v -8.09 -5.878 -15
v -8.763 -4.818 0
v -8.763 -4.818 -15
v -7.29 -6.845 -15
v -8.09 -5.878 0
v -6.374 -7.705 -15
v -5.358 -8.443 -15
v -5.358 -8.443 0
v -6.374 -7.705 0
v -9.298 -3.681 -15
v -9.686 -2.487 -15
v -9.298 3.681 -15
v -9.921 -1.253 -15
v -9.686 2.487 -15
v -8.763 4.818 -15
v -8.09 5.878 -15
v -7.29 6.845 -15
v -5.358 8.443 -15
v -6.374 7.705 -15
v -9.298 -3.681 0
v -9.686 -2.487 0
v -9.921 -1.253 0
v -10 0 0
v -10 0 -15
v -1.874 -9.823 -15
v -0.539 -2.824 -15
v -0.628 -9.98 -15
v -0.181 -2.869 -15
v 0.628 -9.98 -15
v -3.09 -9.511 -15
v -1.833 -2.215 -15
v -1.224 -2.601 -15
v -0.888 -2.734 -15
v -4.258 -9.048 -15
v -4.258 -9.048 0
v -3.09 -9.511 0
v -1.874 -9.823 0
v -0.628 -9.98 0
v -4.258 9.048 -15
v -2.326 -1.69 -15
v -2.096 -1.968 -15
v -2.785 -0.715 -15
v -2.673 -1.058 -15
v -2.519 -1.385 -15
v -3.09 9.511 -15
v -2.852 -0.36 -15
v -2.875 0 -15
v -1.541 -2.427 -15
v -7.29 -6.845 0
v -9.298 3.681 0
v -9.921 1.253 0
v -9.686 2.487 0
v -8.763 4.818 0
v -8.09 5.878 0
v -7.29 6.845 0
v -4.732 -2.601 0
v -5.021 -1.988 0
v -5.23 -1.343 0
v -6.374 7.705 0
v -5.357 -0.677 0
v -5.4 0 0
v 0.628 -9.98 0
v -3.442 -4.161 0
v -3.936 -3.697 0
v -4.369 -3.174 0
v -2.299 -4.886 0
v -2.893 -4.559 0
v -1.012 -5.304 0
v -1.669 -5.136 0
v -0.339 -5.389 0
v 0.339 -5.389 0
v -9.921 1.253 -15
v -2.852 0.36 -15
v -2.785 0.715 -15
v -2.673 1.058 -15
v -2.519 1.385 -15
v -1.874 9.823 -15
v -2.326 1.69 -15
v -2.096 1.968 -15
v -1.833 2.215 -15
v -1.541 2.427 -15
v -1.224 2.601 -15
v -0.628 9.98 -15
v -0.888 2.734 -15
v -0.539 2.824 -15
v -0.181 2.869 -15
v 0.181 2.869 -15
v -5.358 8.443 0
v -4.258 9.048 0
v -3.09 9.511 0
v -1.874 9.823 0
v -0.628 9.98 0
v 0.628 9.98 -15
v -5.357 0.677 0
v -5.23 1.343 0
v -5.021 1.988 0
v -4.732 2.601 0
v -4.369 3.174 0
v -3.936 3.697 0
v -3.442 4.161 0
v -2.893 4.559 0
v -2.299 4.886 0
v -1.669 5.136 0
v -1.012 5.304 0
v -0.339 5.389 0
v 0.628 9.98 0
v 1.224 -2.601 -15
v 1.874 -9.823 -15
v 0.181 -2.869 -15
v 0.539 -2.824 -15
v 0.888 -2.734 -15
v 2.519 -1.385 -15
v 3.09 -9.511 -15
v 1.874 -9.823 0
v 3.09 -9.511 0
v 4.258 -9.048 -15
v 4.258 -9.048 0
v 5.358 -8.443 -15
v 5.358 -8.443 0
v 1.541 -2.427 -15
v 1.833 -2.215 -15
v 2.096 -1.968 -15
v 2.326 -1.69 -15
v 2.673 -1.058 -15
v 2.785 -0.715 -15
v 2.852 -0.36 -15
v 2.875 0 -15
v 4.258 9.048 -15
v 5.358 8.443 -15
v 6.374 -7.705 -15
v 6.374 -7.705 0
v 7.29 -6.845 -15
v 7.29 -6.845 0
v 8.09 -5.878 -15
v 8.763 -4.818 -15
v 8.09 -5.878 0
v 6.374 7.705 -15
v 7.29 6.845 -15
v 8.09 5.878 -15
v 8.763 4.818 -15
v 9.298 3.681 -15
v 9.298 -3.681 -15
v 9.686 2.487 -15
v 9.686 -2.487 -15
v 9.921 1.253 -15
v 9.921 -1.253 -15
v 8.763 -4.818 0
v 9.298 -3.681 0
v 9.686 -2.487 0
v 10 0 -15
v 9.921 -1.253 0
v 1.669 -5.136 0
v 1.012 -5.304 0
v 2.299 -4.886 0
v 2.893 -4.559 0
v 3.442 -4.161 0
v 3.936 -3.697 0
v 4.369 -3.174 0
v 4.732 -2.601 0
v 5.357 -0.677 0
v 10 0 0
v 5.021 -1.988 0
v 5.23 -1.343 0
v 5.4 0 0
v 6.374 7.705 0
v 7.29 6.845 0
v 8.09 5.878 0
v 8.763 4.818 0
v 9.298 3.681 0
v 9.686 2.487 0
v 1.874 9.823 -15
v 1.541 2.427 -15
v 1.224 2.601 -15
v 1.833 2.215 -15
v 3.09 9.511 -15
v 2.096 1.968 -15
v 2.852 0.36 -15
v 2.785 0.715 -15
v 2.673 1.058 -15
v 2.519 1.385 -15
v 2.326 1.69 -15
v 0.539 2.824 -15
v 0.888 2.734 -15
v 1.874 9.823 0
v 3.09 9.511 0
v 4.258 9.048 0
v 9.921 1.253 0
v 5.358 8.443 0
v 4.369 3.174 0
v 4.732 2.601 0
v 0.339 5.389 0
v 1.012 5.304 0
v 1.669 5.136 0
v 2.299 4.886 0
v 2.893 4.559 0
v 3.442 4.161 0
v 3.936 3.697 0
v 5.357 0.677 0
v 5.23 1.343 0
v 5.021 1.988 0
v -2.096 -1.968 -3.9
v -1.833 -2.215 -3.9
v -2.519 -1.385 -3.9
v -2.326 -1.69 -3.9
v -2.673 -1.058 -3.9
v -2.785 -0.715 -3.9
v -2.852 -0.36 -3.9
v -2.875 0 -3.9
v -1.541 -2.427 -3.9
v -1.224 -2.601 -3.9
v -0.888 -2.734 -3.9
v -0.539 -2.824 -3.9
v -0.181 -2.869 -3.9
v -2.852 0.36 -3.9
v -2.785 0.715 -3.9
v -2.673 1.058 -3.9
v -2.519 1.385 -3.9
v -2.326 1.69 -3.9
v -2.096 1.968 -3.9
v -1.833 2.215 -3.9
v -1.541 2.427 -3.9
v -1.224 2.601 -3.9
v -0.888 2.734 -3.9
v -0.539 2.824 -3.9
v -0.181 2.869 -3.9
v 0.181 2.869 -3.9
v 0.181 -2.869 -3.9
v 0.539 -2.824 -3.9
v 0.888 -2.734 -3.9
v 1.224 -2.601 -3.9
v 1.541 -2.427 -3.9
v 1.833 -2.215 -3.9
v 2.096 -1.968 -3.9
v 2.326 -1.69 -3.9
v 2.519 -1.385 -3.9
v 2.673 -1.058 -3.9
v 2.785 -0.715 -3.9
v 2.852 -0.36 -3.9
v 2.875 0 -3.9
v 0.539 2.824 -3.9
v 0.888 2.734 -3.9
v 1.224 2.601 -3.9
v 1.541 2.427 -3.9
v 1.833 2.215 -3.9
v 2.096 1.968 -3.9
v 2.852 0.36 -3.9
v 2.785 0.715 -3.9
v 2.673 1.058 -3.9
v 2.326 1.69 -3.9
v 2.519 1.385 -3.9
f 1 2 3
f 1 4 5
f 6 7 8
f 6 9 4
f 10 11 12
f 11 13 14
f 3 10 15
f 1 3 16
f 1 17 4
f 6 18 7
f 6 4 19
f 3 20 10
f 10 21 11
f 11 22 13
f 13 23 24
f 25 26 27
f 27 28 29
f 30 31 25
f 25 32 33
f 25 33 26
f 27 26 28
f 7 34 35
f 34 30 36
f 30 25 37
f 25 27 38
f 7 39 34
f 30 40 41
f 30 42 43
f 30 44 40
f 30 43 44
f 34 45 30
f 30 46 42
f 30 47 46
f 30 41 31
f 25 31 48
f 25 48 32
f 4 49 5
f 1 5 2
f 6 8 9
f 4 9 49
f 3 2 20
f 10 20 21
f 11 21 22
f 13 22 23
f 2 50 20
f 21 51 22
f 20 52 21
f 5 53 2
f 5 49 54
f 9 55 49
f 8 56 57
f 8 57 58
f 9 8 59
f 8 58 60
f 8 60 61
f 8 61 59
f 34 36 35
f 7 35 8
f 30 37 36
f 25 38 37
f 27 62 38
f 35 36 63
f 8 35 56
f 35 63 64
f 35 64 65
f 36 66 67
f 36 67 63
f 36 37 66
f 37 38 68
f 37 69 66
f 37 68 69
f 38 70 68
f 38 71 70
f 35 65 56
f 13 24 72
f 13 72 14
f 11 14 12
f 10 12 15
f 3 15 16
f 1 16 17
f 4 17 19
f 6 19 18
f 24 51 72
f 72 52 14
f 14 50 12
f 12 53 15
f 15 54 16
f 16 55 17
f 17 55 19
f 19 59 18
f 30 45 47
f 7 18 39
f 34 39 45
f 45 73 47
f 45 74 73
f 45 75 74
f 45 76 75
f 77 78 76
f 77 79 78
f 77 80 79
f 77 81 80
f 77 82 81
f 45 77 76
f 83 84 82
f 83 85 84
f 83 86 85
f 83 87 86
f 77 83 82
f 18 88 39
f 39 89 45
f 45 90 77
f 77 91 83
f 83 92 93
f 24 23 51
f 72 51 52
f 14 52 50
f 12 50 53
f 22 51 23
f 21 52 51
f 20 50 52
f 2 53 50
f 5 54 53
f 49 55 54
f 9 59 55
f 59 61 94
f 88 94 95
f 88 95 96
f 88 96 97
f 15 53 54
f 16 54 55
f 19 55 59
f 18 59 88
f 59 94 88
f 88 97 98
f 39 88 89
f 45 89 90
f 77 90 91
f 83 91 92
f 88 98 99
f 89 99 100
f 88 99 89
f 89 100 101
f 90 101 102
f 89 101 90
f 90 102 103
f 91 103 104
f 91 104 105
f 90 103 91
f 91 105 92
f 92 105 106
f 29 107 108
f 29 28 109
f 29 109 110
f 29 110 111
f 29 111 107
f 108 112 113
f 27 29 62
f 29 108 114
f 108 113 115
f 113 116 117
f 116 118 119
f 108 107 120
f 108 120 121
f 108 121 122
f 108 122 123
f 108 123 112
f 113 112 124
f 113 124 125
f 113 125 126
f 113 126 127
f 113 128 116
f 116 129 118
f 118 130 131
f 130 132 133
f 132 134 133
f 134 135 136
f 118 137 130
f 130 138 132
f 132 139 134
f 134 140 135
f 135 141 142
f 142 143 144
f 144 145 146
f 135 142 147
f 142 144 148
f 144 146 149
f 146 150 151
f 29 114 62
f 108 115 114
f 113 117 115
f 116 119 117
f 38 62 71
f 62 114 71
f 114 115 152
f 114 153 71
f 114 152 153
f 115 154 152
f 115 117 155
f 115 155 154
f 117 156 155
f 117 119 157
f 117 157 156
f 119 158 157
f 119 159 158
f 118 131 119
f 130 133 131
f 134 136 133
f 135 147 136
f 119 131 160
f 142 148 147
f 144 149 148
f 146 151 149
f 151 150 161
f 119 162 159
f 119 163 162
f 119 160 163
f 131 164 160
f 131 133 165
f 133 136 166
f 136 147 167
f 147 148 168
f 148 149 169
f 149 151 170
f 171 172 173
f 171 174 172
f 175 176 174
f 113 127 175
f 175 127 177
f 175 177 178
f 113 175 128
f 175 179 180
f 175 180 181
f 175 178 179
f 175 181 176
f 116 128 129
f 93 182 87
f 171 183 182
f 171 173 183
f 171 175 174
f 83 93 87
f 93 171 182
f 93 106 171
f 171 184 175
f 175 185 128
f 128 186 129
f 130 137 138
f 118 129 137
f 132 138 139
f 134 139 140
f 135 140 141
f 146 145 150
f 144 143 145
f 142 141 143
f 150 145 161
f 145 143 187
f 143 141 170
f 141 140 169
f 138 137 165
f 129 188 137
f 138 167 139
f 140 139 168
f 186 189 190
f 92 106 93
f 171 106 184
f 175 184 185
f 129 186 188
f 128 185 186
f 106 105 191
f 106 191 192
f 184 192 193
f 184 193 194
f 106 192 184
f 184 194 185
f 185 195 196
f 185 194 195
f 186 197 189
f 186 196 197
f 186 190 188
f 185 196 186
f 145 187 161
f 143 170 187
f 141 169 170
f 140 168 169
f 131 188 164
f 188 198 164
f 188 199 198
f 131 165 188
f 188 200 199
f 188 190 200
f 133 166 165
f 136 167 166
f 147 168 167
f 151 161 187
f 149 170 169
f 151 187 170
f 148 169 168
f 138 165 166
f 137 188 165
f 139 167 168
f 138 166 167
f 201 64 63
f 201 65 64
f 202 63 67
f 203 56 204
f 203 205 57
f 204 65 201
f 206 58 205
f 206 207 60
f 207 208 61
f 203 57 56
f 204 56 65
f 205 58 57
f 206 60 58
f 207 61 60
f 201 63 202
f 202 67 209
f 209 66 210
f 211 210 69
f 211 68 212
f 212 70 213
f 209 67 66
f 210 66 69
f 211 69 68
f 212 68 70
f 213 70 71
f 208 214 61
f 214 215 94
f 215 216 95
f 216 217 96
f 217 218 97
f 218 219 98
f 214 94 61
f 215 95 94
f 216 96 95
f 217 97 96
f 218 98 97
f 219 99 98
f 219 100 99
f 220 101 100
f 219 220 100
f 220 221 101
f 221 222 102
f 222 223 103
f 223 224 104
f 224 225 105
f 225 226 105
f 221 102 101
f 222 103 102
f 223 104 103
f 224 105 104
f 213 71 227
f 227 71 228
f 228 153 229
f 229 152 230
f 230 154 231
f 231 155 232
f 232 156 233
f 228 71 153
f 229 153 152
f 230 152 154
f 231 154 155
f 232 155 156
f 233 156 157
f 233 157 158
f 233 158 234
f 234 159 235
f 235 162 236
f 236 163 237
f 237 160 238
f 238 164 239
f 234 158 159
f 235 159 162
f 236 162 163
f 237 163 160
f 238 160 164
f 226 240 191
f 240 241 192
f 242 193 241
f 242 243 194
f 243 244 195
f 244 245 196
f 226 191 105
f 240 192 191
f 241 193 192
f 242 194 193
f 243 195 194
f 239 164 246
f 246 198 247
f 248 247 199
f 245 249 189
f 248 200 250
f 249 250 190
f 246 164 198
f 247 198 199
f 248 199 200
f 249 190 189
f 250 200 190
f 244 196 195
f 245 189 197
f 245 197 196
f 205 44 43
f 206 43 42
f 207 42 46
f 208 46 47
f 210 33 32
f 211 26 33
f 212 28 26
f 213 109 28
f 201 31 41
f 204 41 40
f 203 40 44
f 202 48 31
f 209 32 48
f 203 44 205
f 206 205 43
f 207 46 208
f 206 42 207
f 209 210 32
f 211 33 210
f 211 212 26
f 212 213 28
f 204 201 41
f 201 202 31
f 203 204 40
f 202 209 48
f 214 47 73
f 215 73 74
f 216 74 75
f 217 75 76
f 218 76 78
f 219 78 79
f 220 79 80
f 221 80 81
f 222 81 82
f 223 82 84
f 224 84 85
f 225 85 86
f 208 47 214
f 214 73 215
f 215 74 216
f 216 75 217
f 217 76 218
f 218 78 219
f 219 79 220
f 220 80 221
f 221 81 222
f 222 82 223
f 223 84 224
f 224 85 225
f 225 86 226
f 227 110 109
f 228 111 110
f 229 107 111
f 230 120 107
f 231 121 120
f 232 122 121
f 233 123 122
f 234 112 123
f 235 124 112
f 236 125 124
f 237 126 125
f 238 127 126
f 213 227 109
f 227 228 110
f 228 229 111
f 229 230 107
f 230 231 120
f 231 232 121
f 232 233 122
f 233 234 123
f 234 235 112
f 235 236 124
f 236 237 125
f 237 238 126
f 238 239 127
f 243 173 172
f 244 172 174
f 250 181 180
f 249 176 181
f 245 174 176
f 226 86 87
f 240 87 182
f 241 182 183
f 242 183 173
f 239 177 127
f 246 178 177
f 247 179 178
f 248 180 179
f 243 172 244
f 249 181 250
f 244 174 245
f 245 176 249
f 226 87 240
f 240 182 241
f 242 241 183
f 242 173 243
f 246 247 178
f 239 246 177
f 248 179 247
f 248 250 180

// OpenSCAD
$fn = 50;

difference() {
	union() {
		translate(v = [0, 0, -15.0]) {
			cylinder(h = 15, r = 10.0);
		}
		#translate(v = [0, 0, -18.0]) {
			cylinder(h = 18, r = 2.875);
		}
	}
	union() {
		translate(v = [0, 0, 0]) {
			rotate(a = [0, 0, 0]) {
				difference() {
					union() {
						translate(v = [0, 0, -18.0]) {
							cylinder(h = 18, r = 2.6);
						}
						translate(v = [0, 0, -3.9]) {
							cylinder(h = 3.9, r1 = 2.875, r2 = 5.4);
						}
						translate(v = [0, 0, -18.0]) {
							cylinder(h = 18, r = 2.875);
						}
						translate(v = [0, 0, -18.0]) {
							cylinder(h = 18, r = 2.6);
						}
					}
					union();
				}
			}
		}
	}
}
